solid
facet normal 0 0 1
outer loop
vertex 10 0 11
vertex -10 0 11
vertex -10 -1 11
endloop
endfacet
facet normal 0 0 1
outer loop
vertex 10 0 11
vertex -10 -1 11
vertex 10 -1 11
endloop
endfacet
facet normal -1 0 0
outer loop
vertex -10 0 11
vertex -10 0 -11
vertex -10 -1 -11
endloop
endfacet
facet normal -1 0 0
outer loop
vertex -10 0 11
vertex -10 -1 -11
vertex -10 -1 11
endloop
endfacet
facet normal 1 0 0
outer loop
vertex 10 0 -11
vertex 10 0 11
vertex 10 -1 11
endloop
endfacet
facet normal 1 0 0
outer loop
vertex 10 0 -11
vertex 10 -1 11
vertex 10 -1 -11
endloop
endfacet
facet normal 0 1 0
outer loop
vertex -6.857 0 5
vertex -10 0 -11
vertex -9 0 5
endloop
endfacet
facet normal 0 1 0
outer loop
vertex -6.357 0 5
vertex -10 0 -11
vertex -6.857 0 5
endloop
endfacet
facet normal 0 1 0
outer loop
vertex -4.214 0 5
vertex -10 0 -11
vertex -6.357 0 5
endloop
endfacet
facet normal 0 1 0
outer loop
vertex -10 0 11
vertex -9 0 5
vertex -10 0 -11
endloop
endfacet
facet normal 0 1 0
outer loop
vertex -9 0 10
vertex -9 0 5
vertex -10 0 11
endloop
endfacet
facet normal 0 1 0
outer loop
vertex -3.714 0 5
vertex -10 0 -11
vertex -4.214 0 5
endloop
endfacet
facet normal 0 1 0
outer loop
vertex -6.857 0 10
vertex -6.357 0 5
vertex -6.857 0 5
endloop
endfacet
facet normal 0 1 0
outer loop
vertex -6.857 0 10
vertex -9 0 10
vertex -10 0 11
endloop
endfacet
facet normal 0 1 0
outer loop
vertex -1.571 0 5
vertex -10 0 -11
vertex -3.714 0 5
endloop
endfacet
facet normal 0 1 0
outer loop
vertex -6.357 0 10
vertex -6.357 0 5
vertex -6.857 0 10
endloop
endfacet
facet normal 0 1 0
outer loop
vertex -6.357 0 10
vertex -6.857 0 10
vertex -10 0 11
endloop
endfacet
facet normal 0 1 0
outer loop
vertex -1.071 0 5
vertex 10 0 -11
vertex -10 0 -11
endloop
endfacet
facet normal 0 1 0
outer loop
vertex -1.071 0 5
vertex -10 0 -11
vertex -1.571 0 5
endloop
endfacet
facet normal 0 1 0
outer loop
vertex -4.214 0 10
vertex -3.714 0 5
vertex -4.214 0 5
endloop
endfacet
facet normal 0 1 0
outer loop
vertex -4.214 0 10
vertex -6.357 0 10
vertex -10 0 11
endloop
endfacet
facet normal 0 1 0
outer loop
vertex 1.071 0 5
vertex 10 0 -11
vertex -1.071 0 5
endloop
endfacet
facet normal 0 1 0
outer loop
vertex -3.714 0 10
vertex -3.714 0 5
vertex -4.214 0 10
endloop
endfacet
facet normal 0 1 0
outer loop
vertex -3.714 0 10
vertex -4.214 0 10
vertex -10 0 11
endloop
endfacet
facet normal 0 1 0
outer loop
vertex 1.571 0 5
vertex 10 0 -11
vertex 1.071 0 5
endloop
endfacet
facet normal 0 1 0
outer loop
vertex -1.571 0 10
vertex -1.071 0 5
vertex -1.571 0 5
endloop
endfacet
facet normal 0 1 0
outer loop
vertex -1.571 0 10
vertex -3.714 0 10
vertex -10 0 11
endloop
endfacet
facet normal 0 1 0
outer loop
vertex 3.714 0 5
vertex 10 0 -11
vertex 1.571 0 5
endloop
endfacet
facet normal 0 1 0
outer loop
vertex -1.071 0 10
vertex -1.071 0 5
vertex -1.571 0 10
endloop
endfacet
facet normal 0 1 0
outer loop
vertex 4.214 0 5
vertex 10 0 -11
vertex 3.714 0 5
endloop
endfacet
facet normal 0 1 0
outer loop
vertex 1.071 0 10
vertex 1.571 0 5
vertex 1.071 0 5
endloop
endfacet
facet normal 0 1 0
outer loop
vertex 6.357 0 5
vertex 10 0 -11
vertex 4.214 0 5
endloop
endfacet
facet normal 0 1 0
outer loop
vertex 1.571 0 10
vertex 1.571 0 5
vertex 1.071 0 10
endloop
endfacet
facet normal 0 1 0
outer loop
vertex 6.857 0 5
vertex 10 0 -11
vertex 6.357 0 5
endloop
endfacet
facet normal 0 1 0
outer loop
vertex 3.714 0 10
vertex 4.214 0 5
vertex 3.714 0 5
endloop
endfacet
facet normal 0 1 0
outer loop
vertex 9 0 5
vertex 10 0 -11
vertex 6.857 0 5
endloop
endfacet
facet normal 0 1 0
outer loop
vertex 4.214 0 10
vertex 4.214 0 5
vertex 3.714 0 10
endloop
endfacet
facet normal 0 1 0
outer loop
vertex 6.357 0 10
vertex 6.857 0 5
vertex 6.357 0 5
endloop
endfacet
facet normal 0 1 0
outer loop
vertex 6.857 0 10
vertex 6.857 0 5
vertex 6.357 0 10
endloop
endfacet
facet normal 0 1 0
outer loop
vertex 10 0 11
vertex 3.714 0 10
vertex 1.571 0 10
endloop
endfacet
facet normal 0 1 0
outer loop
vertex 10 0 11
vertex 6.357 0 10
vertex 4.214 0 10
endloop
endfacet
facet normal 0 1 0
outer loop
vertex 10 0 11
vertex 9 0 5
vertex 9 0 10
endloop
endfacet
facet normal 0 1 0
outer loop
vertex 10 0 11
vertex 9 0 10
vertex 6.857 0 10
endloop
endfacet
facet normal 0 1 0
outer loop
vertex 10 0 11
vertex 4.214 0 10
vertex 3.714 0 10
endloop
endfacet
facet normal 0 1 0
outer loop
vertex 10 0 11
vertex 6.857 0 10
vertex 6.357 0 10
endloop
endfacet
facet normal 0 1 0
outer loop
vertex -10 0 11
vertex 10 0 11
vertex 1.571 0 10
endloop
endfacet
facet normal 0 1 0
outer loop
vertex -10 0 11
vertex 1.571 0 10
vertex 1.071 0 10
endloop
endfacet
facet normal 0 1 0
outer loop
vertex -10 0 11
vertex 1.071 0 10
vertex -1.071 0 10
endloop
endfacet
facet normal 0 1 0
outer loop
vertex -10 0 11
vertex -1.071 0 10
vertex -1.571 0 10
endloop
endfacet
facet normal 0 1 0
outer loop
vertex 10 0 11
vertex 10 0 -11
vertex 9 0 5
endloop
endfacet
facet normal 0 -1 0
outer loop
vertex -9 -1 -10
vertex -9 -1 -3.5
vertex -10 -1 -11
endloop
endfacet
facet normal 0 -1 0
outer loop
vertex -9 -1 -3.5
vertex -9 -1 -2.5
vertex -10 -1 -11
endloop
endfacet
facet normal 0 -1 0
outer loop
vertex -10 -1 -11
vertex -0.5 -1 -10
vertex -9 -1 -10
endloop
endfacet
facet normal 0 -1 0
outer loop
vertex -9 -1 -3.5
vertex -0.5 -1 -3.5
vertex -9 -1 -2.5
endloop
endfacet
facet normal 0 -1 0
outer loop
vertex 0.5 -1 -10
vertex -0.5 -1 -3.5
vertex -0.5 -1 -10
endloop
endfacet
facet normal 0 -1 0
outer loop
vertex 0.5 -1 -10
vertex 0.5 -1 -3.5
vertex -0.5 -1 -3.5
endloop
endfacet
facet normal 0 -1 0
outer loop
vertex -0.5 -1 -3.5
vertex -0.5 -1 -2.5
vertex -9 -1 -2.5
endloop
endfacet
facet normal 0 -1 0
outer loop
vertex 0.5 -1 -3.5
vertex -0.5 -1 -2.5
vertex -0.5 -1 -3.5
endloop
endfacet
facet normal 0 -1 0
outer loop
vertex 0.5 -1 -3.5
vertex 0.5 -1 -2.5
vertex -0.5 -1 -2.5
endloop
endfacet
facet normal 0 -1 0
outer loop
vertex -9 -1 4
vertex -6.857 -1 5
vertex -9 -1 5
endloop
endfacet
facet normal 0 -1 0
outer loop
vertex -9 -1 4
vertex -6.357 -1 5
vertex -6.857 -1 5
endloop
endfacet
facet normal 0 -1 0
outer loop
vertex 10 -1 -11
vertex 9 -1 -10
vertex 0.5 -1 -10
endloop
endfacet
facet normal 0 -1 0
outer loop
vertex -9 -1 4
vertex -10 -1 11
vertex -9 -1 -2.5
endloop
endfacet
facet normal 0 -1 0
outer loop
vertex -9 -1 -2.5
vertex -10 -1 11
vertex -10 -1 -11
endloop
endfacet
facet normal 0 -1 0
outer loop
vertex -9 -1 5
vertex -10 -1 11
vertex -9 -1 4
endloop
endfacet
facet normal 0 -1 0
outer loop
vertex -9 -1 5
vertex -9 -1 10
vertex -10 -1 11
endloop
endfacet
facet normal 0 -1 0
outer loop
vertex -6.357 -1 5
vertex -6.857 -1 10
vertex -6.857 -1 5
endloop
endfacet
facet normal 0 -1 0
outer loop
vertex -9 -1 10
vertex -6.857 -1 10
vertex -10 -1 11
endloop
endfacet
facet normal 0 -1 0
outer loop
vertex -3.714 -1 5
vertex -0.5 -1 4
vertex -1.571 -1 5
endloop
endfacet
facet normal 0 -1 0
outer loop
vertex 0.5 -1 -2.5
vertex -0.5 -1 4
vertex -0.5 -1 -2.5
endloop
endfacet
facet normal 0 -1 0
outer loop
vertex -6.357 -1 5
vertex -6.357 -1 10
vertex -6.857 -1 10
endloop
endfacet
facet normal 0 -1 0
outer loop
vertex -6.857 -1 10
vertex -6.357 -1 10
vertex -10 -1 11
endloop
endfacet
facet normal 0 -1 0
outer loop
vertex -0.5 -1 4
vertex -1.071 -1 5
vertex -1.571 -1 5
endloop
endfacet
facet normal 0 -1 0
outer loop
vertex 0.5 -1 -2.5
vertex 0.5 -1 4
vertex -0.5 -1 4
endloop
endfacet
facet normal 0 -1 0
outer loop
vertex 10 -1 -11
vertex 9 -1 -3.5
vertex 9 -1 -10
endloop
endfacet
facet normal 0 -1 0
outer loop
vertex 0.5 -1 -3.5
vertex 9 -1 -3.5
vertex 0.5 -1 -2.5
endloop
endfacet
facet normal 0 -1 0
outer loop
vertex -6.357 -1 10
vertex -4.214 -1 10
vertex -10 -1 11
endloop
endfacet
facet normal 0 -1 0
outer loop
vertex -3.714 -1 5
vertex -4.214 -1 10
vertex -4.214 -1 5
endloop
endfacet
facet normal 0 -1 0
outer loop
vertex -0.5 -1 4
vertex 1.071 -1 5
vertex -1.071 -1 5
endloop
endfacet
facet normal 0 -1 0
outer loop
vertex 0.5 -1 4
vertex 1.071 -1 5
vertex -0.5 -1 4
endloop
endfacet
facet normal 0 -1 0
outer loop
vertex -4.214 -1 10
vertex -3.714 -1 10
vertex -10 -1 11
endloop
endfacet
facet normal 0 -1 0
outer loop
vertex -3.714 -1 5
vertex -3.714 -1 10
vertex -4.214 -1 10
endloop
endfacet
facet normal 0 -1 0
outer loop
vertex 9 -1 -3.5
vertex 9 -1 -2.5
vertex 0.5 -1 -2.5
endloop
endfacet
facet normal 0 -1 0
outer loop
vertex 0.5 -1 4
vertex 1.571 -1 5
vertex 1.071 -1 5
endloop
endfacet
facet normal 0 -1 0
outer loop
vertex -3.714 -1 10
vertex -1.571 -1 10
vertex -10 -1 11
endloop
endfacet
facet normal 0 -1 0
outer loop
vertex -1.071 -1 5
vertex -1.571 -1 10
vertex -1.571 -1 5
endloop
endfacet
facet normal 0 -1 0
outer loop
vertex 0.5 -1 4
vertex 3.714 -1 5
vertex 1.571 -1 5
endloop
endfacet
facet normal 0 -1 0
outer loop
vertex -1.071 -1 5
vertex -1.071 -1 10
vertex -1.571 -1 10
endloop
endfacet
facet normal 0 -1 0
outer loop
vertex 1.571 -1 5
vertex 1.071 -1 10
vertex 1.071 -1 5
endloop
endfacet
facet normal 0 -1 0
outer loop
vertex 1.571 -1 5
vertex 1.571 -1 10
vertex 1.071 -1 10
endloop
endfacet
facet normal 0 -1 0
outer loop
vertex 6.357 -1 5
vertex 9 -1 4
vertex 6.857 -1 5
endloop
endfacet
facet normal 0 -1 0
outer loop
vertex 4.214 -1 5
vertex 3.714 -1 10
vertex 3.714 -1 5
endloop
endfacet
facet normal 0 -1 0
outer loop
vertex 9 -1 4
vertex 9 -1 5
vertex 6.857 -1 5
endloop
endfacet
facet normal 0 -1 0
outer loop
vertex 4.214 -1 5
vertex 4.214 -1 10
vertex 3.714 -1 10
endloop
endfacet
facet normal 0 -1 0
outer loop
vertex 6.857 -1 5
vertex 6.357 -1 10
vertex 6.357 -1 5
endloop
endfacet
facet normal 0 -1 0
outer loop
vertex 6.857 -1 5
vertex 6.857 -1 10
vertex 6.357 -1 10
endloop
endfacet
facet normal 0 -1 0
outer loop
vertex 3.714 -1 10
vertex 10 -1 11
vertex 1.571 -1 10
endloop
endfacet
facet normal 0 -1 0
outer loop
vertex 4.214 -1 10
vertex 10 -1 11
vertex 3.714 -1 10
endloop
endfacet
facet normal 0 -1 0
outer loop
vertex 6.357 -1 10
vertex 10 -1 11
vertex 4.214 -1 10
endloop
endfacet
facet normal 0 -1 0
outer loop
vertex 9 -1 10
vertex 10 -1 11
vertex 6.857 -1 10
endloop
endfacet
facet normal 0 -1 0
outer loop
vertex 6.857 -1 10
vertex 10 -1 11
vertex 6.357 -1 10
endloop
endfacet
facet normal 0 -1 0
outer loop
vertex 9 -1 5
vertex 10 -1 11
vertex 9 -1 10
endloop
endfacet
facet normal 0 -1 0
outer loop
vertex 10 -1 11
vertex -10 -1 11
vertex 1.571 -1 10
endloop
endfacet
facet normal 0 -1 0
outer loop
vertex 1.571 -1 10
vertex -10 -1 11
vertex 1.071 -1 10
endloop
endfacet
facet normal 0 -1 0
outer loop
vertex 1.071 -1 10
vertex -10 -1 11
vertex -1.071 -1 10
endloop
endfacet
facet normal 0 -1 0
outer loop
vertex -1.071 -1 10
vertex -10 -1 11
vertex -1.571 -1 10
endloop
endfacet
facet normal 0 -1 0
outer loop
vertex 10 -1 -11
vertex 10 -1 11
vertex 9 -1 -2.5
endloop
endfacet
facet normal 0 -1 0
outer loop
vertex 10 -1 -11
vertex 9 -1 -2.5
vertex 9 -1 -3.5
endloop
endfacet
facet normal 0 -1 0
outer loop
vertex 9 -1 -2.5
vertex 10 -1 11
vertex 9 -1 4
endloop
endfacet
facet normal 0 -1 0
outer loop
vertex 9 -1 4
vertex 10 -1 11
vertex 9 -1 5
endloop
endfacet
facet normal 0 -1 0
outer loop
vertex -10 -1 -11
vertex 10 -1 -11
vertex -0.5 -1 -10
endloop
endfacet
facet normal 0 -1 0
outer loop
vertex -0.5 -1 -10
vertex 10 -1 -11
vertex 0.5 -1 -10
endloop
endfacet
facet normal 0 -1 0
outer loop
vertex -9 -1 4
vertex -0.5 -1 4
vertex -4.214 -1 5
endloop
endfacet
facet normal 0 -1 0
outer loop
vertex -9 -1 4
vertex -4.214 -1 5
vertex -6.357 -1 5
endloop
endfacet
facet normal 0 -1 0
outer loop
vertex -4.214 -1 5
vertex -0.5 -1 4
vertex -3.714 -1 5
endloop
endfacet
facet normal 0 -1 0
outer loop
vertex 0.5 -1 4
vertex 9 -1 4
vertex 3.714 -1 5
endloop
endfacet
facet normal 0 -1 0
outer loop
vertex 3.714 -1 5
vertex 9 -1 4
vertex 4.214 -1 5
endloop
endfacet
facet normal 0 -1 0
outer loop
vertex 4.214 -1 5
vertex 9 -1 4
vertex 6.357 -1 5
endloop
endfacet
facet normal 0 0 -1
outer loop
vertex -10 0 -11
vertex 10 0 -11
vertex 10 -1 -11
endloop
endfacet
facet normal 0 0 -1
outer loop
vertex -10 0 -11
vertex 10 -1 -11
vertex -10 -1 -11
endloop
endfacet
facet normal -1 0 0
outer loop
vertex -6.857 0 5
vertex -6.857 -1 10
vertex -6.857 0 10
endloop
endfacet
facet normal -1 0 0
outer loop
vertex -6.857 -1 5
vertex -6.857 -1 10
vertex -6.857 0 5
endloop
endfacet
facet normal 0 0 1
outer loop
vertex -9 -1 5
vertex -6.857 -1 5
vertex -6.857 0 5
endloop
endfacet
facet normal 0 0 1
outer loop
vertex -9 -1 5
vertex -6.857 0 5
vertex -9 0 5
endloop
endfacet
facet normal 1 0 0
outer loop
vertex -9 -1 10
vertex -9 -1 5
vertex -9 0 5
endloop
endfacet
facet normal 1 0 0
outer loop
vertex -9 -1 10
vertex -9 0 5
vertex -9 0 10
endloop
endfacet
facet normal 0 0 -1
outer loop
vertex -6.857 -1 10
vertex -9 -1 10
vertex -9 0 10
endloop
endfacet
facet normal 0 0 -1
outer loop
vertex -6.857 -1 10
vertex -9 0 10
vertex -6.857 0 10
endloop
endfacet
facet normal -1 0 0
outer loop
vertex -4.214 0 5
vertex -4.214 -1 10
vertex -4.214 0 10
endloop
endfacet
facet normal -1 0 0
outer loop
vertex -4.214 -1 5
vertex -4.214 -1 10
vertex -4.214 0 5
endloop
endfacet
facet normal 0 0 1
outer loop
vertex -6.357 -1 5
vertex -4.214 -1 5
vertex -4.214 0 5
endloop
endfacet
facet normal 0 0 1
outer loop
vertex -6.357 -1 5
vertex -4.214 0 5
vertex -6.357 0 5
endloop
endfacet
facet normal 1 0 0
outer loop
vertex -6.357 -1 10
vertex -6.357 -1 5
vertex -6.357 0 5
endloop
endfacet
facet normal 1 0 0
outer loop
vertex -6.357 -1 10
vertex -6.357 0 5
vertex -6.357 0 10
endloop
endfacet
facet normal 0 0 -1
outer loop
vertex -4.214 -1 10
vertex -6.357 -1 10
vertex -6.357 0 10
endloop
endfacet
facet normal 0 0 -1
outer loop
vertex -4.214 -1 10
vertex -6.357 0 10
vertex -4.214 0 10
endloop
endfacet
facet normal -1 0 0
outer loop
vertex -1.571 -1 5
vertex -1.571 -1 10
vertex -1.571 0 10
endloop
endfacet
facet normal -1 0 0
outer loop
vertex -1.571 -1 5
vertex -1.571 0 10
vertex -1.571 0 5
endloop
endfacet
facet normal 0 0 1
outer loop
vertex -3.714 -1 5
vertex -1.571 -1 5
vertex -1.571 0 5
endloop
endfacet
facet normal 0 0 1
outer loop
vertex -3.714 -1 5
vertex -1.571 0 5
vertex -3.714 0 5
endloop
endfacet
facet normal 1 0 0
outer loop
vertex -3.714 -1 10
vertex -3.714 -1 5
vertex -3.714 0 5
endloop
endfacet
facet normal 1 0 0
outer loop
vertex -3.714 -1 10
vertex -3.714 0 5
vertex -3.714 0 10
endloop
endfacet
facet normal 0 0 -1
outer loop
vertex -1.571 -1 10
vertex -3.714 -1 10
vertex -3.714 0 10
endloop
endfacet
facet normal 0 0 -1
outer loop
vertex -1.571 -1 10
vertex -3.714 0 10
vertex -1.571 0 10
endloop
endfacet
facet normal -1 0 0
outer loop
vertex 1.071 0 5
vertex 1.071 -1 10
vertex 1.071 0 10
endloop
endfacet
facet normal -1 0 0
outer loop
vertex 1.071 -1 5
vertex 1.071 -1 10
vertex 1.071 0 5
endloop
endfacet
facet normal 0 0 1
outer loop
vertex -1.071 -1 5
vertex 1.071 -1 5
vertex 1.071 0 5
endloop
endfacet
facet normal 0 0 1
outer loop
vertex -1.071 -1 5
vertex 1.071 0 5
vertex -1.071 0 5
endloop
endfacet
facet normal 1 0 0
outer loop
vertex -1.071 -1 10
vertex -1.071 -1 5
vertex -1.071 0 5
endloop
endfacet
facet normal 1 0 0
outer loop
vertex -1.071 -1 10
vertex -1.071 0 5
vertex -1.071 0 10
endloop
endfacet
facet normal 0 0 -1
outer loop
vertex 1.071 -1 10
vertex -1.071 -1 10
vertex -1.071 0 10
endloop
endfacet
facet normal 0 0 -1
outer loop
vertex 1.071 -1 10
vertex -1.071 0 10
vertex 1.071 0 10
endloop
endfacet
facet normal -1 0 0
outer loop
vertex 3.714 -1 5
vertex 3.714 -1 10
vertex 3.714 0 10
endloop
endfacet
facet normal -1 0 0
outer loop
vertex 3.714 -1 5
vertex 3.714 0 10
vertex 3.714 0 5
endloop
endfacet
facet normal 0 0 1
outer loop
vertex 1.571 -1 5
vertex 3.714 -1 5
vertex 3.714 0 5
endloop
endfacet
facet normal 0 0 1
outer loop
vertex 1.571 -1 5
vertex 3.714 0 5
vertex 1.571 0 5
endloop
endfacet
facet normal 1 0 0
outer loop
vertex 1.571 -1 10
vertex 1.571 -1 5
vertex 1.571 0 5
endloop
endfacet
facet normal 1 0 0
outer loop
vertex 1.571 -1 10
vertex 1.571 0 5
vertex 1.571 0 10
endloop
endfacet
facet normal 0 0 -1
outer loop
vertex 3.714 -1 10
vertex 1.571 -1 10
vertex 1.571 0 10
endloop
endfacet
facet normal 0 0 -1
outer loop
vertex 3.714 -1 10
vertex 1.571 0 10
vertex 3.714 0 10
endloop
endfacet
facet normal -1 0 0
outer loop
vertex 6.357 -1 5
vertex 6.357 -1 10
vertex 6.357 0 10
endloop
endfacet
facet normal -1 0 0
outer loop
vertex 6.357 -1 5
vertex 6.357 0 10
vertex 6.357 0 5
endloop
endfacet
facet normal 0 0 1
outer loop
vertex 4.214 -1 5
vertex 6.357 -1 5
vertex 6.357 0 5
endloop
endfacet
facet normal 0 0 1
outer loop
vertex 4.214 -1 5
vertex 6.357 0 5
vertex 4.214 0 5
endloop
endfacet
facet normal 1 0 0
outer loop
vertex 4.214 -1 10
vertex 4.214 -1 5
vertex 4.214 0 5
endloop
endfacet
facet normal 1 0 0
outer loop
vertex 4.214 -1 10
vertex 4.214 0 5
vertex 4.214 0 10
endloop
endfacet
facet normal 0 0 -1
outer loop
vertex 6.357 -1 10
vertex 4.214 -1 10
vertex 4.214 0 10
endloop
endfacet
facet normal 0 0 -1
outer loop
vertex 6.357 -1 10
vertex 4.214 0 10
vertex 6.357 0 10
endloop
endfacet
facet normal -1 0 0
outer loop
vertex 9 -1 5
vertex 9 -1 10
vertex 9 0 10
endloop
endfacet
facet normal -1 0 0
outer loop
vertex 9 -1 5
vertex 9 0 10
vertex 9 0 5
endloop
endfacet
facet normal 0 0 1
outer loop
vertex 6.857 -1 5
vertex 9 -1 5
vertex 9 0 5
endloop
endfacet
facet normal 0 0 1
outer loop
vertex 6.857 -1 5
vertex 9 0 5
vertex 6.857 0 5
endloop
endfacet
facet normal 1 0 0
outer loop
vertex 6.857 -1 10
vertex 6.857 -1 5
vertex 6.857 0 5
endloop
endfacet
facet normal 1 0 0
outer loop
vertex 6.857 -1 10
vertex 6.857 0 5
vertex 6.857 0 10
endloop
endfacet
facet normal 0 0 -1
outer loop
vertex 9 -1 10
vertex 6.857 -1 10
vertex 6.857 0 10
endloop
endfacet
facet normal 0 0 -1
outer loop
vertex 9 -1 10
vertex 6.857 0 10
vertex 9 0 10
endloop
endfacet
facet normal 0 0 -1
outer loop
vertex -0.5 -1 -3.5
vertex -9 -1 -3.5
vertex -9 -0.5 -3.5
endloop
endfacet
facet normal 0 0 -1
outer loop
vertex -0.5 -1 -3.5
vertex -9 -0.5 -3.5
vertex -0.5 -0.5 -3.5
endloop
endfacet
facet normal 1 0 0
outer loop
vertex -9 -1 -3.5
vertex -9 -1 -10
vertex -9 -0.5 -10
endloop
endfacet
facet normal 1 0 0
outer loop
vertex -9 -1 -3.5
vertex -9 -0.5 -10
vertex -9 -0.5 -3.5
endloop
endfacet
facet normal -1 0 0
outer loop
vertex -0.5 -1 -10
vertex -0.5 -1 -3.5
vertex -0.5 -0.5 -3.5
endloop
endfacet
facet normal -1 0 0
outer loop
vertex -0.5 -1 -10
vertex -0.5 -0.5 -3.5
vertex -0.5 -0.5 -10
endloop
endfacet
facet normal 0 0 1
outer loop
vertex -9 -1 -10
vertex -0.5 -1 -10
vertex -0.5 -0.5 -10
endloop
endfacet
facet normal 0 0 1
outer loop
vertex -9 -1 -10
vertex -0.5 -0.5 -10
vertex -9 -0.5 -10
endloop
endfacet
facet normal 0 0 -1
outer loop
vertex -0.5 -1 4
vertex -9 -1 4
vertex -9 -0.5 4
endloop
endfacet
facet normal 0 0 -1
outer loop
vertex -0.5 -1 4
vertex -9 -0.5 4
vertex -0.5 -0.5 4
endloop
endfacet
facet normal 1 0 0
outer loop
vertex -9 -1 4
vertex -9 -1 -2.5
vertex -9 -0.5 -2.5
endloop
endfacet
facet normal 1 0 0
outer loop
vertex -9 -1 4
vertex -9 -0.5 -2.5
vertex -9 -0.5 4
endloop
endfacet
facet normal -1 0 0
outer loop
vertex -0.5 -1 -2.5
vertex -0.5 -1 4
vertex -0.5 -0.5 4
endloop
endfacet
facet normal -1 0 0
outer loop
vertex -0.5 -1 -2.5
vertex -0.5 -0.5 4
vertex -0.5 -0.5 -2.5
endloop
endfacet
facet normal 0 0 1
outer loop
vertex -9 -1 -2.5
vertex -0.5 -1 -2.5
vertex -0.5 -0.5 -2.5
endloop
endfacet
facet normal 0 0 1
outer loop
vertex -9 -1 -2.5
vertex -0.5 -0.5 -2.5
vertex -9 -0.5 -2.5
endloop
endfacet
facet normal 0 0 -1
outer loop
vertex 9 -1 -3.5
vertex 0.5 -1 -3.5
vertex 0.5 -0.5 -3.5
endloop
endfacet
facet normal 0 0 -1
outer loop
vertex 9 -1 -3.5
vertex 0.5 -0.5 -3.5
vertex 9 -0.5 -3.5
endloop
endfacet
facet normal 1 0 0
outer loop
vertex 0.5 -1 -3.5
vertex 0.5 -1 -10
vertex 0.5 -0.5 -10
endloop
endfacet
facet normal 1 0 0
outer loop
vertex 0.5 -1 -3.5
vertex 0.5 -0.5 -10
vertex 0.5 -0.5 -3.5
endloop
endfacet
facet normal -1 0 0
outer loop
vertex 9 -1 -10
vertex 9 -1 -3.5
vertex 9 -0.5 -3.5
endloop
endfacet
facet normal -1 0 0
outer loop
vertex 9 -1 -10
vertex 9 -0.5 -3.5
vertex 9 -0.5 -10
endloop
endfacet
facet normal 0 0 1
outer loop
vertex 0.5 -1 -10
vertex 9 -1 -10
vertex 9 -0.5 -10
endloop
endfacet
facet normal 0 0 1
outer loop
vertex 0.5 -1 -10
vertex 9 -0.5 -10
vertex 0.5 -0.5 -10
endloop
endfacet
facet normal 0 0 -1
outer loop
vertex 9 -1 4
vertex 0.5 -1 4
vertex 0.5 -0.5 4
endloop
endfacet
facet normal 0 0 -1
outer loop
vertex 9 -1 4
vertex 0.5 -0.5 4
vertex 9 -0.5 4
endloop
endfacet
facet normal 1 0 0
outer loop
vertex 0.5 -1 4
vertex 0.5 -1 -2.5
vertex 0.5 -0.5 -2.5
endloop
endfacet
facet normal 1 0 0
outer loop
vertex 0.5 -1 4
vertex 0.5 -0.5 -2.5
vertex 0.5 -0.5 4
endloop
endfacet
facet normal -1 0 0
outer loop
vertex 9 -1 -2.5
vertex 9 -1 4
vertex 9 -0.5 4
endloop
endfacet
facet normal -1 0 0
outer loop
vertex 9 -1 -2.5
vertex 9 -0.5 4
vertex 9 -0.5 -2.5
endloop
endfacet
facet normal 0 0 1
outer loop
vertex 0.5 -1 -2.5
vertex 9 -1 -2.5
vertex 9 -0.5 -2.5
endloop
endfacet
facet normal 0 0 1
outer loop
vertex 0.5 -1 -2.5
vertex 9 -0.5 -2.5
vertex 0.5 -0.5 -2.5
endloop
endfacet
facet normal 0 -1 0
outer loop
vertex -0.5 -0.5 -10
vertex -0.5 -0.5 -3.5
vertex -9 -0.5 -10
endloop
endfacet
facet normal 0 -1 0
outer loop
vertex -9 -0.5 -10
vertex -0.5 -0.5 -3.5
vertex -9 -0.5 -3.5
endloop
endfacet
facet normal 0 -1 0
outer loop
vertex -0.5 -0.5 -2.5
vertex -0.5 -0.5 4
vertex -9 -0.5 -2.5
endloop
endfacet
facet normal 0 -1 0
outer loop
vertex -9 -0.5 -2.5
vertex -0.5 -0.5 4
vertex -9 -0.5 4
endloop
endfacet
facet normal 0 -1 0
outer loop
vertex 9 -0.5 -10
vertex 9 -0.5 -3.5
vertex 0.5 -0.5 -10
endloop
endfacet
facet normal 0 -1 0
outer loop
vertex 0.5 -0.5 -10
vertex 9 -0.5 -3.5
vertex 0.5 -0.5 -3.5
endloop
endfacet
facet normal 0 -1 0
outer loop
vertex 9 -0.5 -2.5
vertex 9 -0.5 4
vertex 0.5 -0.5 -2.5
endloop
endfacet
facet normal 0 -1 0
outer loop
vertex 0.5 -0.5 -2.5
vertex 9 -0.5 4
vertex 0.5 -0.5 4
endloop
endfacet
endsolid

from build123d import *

# Parameters (mm, degrees)
SKETCH_W        = 20
SKETCH_H        = 22
PAD_DEPTH       = 1
SKETCH001_W     = 8.5
SKETCH001_H     = 6.5
POCKET_DEPTH    = 0.5
SKETCH002_W     = 2.142857
SKETCH002_H     = 5
SKETCH002_W_2   = 2.142858
POCKET001_DEPTH = 5


with BuildPart() as part:
    # Sketch → Pad (new body)
    with BuildSketch(Plane.XZ):
        Rectangle(SKETCH_W, SKETCH_H)
    extrude(amount=PAD_DEPTH)

    # Sketch001 (on Face6 of Pad) → Pocket (cut)
    with BuildSketch(Plane.XZ.offset(1)):
        with Locations((-4.75, 0.75)):
            Rectangle(SKETCH001_W, SKETCH001_H)
        with Locations((-4.75, -6.75)):
            Rectangle(SKETCH001_W, SKETCH001_H)
        with Locations((4.75, 0.75)):
            Rectangle(SKETCH001_W, SKETCH001_H)
        with Locations((4.75, -6.75)):
            Rectangle(SKETCH001_W, SKETCH001_H)
    extrude(amount=-POCKET_DEPTH, mode=Mode.SUBTRACT)

    # Sketch002 (on Face5 of Pocket) → Pocket001 (cut)
    with BuildSketch(Plane.XZ.offset(1)):
        with Locations((-7.928572, 7.5)):
            Rectangle(SKETCH002_W, SKETCH002_H)
        with Locations((-5.285714, 7.5)):
            Rectangle(SKETCH002_W, SKETCH002_H)
        with Locations((-2.642857, 7.5)):
            Rectangle(SKETCH002_W, SKETCH002_H)
        with Locations((0, 7.5)):
            Rectangle(SKETCH002_W_2, SKETCH002_H)
        with Locations((2.642857, 7.5)):
            Rectangle(SKETCH002_W, SKETCH002_H)
        with Locations((5.285714, 7.5)):
            Rectangle(SKETCH002_W, SKETCH002_H)
        with Locations((7.928572, 7.5)):
            Rectangle(SKETCH002_W, SKETCH002_H)
    extrude(amount=-POCKET001_DEPTH, mode=Mode.SUBTRACT)


solid = part.part
